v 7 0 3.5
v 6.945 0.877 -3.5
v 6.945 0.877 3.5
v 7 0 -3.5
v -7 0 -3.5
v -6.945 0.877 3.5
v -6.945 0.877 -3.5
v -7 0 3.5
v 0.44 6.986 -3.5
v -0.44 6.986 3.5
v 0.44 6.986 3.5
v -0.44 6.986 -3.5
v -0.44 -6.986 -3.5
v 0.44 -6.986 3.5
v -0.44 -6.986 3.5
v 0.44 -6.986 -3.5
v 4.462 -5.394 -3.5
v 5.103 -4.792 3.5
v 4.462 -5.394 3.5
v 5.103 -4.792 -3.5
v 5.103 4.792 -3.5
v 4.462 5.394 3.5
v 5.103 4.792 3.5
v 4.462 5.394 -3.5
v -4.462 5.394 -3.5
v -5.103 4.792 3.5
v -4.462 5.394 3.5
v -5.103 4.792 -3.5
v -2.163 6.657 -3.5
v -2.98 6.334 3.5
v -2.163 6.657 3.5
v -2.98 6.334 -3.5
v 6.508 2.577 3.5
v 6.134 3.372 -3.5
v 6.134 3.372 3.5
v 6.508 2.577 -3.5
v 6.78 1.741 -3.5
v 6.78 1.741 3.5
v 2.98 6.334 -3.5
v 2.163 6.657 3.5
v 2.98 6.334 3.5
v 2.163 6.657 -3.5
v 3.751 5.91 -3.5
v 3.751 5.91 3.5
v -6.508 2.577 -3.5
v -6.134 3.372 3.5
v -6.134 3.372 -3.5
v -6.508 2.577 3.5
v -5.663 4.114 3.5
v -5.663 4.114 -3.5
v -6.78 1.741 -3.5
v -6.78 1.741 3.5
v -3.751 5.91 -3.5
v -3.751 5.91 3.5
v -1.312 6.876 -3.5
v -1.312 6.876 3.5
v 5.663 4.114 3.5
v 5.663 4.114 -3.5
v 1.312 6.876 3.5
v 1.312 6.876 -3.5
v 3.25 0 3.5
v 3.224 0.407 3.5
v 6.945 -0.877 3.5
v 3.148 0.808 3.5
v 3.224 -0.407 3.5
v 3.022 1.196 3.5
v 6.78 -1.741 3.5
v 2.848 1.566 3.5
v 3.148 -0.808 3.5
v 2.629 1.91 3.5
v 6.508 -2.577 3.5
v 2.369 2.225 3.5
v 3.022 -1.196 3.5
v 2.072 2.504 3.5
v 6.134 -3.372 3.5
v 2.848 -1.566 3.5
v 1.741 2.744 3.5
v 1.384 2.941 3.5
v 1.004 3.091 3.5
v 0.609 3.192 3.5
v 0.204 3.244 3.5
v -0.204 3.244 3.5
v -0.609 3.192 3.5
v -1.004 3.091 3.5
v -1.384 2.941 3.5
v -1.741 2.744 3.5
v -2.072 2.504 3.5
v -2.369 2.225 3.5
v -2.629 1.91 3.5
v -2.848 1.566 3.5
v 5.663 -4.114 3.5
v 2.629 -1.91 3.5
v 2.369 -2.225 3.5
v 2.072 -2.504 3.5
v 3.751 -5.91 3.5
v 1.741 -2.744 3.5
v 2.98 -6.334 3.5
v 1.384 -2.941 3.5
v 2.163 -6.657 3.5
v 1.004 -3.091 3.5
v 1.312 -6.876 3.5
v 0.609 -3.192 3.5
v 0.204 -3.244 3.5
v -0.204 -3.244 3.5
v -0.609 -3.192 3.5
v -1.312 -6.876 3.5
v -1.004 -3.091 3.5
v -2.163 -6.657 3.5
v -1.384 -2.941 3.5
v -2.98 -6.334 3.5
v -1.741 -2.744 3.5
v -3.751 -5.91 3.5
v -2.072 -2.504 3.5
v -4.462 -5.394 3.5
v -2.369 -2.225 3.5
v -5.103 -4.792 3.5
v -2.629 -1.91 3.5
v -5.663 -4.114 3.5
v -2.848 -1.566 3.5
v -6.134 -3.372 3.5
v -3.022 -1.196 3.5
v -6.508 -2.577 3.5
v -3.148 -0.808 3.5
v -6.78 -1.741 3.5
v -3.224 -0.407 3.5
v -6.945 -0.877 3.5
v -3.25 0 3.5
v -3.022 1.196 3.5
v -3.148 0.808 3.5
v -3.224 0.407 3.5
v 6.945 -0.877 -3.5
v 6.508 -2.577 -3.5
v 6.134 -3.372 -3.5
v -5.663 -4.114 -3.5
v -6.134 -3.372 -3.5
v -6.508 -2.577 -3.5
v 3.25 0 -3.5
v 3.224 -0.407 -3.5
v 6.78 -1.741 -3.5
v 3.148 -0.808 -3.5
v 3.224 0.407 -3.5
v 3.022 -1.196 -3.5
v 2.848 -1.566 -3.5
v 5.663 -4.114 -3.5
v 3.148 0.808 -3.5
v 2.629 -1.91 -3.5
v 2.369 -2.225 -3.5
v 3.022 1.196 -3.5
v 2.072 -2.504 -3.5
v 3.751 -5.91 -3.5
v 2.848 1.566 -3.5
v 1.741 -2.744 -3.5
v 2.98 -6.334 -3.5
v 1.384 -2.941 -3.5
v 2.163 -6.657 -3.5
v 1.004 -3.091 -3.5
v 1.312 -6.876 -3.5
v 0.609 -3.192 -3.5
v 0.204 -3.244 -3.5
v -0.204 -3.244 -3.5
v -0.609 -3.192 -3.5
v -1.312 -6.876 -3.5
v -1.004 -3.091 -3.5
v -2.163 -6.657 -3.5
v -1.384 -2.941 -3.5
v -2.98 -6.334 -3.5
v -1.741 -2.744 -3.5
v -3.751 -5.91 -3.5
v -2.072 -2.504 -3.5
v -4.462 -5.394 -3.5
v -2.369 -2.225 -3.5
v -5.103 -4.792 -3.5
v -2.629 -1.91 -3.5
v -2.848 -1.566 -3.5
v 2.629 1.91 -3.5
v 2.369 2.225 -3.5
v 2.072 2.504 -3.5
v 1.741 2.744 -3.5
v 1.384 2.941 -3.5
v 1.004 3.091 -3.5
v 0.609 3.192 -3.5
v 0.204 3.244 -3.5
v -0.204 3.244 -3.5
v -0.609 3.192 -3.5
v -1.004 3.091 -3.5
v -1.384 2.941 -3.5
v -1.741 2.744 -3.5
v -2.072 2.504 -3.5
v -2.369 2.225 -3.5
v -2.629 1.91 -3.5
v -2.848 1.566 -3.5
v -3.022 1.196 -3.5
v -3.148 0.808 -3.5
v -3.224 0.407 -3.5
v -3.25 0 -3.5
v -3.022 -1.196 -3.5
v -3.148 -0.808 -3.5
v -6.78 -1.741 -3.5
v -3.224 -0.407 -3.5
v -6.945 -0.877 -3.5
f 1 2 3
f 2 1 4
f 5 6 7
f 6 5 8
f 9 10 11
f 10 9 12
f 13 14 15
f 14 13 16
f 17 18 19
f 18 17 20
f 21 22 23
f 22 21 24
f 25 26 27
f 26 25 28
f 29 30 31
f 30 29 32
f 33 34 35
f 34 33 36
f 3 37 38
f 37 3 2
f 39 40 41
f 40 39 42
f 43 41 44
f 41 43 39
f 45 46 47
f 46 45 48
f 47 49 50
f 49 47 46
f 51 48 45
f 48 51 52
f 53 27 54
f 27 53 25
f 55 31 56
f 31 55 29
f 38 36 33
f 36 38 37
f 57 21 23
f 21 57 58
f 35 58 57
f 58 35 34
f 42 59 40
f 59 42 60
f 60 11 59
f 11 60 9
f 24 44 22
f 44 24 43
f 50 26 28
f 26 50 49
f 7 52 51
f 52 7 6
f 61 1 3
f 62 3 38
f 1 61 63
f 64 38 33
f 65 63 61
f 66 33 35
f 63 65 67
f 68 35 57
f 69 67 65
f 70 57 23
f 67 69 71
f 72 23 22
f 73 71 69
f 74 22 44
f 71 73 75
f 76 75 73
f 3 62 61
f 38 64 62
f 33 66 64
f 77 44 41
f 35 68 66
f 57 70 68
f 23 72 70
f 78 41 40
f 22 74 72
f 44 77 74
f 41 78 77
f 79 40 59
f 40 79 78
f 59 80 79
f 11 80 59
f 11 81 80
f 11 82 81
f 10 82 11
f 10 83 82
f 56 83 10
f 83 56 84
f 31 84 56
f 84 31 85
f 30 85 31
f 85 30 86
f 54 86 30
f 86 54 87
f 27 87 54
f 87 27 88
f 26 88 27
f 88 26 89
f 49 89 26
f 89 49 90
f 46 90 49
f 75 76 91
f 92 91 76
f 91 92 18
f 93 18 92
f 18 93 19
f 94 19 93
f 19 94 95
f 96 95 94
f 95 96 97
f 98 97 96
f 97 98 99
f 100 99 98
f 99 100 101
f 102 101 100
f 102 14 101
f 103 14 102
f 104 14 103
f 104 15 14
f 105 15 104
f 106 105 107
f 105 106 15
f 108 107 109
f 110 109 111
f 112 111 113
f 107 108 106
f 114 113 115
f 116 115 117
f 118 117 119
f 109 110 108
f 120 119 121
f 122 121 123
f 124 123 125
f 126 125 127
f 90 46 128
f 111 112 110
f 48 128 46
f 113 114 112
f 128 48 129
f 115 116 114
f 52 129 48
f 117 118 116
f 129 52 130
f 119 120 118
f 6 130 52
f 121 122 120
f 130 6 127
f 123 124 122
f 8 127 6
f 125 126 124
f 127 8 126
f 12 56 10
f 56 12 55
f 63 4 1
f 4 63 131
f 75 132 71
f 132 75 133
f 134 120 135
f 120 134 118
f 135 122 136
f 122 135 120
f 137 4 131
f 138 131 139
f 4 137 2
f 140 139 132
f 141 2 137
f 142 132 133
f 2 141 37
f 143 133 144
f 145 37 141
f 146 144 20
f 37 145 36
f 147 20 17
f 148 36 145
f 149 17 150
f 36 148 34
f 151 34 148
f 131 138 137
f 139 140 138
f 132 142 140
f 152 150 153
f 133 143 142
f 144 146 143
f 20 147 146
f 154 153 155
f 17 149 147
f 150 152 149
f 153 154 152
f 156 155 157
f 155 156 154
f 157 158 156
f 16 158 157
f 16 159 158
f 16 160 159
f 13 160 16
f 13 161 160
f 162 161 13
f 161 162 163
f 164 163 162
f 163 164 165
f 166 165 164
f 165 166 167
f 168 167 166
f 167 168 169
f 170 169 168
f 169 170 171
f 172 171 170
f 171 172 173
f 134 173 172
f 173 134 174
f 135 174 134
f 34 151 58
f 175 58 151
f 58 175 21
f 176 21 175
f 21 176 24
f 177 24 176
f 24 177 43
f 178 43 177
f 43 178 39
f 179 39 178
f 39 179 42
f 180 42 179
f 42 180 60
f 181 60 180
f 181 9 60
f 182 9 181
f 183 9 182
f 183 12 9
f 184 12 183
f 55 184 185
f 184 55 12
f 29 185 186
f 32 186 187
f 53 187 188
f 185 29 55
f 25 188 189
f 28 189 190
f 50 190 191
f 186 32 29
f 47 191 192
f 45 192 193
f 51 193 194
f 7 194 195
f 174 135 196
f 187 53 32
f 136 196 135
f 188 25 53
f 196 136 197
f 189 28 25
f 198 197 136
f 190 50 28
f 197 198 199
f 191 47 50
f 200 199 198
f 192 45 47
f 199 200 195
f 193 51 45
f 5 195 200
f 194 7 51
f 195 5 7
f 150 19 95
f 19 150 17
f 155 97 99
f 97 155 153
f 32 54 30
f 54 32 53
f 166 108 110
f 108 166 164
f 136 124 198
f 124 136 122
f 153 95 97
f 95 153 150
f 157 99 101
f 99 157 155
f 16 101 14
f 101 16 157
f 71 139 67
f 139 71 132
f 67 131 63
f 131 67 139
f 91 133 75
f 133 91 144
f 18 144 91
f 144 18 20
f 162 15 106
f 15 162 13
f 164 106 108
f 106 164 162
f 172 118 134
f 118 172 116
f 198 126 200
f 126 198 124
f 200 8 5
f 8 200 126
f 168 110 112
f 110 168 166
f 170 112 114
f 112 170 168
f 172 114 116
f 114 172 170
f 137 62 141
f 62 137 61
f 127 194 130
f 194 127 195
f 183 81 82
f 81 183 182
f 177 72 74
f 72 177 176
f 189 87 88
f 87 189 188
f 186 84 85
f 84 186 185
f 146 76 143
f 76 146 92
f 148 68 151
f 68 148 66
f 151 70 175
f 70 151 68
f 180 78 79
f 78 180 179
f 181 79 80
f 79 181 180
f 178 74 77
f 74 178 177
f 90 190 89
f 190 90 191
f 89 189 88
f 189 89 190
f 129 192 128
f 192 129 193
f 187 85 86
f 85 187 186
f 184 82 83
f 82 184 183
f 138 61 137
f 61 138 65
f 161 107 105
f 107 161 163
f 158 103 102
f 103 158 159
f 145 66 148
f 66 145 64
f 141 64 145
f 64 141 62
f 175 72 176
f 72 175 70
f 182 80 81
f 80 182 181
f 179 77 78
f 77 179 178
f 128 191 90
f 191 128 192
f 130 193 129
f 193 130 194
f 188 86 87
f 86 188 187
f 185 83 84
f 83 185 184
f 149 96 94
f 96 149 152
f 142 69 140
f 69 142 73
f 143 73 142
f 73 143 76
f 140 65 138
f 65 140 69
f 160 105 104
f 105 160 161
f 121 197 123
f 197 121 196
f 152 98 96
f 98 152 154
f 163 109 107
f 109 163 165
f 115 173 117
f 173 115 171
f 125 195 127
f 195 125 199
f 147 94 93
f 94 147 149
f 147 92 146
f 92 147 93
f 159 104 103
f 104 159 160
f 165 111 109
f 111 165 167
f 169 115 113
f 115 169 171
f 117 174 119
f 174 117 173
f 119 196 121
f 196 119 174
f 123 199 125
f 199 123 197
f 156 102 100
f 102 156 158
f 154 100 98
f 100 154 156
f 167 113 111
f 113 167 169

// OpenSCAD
$fn = 50;


difference() {
	union() {
		translate(v = [0, 0, -3.5000000000]) {
			cylinder(h = 7, r = 7.0000000000);
		}
	}
	union() {
		translate(v = [0, 0, -100.0000000000]) {
			cylinder(h = 200, r = 3.2500000000);
		}
	}
}
